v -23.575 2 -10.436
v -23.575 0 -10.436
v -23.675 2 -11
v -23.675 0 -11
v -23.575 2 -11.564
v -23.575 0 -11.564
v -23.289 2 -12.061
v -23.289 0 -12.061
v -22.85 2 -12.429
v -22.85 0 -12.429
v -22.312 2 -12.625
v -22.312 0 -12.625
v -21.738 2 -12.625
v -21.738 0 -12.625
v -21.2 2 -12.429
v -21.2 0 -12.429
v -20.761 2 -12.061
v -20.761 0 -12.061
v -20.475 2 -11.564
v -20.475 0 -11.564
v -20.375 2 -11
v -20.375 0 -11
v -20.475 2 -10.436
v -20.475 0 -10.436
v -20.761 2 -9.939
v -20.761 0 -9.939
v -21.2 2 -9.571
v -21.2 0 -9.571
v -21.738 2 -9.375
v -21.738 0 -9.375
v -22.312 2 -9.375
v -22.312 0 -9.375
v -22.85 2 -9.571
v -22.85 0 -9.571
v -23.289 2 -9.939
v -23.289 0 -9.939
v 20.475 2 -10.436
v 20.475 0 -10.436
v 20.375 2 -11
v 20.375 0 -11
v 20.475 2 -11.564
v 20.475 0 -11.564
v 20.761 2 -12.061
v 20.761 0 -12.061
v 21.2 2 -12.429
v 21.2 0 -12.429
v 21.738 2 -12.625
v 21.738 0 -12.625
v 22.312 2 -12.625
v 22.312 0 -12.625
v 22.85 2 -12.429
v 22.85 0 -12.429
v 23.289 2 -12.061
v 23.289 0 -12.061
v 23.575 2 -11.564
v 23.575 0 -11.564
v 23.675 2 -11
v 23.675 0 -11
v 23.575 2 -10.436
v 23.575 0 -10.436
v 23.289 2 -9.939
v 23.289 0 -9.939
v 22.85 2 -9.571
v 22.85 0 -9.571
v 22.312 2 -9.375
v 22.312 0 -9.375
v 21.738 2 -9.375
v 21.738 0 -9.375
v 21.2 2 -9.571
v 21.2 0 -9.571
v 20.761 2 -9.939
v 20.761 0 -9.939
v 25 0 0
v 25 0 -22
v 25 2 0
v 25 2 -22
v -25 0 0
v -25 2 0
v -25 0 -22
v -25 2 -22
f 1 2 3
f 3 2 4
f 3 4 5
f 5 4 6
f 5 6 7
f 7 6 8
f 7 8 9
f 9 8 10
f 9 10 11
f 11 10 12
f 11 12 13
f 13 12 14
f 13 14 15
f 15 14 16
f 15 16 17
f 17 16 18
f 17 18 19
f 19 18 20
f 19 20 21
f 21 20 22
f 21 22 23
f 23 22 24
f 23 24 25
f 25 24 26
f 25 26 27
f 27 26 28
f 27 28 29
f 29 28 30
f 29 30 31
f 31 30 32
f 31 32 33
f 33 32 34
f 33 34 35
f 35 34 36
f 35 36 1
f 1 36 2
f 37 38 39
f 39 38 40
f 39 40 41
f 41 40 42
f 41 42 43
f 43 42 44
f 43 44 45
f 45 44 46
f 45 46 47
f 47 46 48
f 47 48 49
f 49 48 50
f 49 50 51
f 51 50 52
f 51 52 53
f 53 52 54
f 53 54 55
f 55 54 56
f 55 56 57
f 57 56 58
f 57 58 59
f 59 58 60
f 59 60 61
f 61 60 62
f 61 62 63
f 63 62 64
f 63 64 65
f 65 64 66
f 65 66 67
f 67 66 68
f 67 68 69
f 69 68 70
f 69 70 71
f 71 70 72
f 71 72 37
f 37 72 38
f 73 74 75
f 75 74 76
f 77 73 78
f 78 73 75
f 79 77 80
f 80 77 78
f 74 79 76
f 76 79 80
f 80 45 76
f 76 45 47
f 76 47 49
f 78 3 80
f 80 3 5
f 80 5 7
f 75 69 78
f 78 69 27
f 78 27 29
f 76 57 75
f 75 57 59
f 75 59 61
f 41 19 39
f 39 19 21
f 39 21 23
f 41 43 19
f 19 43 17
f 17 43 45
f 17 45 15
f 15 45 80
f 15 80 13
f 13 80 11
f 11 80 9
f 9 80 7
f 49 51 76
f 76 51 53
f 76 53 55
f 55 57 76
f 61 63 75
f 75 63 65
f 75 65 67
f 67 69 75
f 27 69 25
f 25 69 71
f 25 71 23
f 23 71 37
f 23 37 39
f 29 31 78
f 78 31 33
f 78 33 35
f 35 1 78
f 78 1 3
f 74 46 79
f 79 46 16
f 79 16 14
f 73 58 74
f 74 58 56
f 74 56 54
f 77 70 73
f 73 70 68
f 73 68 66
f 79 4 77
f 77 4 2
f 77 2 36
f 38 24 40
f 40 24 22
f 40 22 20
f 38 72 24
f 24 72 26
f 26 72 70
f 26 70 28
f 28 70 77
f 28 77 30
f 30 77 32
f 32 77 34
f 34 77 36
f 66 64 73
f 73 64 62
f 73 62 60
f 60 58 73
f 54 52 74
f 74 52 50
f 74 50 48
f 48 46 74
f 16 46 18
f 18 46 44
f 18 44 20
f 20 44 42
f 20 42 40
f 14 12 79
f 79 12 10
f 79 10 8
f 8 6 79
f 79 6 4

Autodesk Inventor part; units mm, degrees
ref_plane "YZ Plane" through (0, 0, 0) normal (1, 0, 0) x (0, 1, 0)
ref_plane "XZ Plane" through (0, 0, 0) normal (0, 1, 0) x (-1, 0, 0)
ref_plane "XY Plane" through (0, 0, 0) normal (0, 0, 1) x (1, 0, 0)
sketch "Sketch1" plane through (0, 0, 0) normal (0, 1, 0) x (-1, 0, 0)
  line L0 (25, -22) -> (25, 0)
  line L1 (-25, 0) -> (25, 0)
  line L2 (25, -22) -> (19.05, -22)
  line L3 (19.05, 0) -> (25, 0)
  line L4 (25, 0) -> (25, -22)
  line L5 (-25, -22) -> (-19.05, -22)
  line L6 (-19.05, 0) -> (-25, 0)
  line L7 (-25, 0) -> (-25, -22)
  circle A0 centre (22.025, -11) radius 1.65
  circle A1 centre (-22.025, -11) radius 1.65
  line L8 (25, 0) -> (-25, 0)
  line L9 (-25, 0) -> (-25, -22)
  line L10 (-25, -22) -> (25, -22)
  line L11 (25, -22) -> (25, 0)
  point P0 (0, 0)
  point P1 (22.025, 0)
  point P2 (-25, -11)
  point P3 (0, 0)
  dimension "d2" = 3.3
  dimension "d3" = 3.3
  dimension "d4" = 2.975
  dimension "d5" = 11
  dimension "d6" = 2.975
  dimension "d7" = 11
extrude "Extrusion1" add sketch "Sketch1" along normal blind 2
properties part number "IMU_shin_mount_clamp"
